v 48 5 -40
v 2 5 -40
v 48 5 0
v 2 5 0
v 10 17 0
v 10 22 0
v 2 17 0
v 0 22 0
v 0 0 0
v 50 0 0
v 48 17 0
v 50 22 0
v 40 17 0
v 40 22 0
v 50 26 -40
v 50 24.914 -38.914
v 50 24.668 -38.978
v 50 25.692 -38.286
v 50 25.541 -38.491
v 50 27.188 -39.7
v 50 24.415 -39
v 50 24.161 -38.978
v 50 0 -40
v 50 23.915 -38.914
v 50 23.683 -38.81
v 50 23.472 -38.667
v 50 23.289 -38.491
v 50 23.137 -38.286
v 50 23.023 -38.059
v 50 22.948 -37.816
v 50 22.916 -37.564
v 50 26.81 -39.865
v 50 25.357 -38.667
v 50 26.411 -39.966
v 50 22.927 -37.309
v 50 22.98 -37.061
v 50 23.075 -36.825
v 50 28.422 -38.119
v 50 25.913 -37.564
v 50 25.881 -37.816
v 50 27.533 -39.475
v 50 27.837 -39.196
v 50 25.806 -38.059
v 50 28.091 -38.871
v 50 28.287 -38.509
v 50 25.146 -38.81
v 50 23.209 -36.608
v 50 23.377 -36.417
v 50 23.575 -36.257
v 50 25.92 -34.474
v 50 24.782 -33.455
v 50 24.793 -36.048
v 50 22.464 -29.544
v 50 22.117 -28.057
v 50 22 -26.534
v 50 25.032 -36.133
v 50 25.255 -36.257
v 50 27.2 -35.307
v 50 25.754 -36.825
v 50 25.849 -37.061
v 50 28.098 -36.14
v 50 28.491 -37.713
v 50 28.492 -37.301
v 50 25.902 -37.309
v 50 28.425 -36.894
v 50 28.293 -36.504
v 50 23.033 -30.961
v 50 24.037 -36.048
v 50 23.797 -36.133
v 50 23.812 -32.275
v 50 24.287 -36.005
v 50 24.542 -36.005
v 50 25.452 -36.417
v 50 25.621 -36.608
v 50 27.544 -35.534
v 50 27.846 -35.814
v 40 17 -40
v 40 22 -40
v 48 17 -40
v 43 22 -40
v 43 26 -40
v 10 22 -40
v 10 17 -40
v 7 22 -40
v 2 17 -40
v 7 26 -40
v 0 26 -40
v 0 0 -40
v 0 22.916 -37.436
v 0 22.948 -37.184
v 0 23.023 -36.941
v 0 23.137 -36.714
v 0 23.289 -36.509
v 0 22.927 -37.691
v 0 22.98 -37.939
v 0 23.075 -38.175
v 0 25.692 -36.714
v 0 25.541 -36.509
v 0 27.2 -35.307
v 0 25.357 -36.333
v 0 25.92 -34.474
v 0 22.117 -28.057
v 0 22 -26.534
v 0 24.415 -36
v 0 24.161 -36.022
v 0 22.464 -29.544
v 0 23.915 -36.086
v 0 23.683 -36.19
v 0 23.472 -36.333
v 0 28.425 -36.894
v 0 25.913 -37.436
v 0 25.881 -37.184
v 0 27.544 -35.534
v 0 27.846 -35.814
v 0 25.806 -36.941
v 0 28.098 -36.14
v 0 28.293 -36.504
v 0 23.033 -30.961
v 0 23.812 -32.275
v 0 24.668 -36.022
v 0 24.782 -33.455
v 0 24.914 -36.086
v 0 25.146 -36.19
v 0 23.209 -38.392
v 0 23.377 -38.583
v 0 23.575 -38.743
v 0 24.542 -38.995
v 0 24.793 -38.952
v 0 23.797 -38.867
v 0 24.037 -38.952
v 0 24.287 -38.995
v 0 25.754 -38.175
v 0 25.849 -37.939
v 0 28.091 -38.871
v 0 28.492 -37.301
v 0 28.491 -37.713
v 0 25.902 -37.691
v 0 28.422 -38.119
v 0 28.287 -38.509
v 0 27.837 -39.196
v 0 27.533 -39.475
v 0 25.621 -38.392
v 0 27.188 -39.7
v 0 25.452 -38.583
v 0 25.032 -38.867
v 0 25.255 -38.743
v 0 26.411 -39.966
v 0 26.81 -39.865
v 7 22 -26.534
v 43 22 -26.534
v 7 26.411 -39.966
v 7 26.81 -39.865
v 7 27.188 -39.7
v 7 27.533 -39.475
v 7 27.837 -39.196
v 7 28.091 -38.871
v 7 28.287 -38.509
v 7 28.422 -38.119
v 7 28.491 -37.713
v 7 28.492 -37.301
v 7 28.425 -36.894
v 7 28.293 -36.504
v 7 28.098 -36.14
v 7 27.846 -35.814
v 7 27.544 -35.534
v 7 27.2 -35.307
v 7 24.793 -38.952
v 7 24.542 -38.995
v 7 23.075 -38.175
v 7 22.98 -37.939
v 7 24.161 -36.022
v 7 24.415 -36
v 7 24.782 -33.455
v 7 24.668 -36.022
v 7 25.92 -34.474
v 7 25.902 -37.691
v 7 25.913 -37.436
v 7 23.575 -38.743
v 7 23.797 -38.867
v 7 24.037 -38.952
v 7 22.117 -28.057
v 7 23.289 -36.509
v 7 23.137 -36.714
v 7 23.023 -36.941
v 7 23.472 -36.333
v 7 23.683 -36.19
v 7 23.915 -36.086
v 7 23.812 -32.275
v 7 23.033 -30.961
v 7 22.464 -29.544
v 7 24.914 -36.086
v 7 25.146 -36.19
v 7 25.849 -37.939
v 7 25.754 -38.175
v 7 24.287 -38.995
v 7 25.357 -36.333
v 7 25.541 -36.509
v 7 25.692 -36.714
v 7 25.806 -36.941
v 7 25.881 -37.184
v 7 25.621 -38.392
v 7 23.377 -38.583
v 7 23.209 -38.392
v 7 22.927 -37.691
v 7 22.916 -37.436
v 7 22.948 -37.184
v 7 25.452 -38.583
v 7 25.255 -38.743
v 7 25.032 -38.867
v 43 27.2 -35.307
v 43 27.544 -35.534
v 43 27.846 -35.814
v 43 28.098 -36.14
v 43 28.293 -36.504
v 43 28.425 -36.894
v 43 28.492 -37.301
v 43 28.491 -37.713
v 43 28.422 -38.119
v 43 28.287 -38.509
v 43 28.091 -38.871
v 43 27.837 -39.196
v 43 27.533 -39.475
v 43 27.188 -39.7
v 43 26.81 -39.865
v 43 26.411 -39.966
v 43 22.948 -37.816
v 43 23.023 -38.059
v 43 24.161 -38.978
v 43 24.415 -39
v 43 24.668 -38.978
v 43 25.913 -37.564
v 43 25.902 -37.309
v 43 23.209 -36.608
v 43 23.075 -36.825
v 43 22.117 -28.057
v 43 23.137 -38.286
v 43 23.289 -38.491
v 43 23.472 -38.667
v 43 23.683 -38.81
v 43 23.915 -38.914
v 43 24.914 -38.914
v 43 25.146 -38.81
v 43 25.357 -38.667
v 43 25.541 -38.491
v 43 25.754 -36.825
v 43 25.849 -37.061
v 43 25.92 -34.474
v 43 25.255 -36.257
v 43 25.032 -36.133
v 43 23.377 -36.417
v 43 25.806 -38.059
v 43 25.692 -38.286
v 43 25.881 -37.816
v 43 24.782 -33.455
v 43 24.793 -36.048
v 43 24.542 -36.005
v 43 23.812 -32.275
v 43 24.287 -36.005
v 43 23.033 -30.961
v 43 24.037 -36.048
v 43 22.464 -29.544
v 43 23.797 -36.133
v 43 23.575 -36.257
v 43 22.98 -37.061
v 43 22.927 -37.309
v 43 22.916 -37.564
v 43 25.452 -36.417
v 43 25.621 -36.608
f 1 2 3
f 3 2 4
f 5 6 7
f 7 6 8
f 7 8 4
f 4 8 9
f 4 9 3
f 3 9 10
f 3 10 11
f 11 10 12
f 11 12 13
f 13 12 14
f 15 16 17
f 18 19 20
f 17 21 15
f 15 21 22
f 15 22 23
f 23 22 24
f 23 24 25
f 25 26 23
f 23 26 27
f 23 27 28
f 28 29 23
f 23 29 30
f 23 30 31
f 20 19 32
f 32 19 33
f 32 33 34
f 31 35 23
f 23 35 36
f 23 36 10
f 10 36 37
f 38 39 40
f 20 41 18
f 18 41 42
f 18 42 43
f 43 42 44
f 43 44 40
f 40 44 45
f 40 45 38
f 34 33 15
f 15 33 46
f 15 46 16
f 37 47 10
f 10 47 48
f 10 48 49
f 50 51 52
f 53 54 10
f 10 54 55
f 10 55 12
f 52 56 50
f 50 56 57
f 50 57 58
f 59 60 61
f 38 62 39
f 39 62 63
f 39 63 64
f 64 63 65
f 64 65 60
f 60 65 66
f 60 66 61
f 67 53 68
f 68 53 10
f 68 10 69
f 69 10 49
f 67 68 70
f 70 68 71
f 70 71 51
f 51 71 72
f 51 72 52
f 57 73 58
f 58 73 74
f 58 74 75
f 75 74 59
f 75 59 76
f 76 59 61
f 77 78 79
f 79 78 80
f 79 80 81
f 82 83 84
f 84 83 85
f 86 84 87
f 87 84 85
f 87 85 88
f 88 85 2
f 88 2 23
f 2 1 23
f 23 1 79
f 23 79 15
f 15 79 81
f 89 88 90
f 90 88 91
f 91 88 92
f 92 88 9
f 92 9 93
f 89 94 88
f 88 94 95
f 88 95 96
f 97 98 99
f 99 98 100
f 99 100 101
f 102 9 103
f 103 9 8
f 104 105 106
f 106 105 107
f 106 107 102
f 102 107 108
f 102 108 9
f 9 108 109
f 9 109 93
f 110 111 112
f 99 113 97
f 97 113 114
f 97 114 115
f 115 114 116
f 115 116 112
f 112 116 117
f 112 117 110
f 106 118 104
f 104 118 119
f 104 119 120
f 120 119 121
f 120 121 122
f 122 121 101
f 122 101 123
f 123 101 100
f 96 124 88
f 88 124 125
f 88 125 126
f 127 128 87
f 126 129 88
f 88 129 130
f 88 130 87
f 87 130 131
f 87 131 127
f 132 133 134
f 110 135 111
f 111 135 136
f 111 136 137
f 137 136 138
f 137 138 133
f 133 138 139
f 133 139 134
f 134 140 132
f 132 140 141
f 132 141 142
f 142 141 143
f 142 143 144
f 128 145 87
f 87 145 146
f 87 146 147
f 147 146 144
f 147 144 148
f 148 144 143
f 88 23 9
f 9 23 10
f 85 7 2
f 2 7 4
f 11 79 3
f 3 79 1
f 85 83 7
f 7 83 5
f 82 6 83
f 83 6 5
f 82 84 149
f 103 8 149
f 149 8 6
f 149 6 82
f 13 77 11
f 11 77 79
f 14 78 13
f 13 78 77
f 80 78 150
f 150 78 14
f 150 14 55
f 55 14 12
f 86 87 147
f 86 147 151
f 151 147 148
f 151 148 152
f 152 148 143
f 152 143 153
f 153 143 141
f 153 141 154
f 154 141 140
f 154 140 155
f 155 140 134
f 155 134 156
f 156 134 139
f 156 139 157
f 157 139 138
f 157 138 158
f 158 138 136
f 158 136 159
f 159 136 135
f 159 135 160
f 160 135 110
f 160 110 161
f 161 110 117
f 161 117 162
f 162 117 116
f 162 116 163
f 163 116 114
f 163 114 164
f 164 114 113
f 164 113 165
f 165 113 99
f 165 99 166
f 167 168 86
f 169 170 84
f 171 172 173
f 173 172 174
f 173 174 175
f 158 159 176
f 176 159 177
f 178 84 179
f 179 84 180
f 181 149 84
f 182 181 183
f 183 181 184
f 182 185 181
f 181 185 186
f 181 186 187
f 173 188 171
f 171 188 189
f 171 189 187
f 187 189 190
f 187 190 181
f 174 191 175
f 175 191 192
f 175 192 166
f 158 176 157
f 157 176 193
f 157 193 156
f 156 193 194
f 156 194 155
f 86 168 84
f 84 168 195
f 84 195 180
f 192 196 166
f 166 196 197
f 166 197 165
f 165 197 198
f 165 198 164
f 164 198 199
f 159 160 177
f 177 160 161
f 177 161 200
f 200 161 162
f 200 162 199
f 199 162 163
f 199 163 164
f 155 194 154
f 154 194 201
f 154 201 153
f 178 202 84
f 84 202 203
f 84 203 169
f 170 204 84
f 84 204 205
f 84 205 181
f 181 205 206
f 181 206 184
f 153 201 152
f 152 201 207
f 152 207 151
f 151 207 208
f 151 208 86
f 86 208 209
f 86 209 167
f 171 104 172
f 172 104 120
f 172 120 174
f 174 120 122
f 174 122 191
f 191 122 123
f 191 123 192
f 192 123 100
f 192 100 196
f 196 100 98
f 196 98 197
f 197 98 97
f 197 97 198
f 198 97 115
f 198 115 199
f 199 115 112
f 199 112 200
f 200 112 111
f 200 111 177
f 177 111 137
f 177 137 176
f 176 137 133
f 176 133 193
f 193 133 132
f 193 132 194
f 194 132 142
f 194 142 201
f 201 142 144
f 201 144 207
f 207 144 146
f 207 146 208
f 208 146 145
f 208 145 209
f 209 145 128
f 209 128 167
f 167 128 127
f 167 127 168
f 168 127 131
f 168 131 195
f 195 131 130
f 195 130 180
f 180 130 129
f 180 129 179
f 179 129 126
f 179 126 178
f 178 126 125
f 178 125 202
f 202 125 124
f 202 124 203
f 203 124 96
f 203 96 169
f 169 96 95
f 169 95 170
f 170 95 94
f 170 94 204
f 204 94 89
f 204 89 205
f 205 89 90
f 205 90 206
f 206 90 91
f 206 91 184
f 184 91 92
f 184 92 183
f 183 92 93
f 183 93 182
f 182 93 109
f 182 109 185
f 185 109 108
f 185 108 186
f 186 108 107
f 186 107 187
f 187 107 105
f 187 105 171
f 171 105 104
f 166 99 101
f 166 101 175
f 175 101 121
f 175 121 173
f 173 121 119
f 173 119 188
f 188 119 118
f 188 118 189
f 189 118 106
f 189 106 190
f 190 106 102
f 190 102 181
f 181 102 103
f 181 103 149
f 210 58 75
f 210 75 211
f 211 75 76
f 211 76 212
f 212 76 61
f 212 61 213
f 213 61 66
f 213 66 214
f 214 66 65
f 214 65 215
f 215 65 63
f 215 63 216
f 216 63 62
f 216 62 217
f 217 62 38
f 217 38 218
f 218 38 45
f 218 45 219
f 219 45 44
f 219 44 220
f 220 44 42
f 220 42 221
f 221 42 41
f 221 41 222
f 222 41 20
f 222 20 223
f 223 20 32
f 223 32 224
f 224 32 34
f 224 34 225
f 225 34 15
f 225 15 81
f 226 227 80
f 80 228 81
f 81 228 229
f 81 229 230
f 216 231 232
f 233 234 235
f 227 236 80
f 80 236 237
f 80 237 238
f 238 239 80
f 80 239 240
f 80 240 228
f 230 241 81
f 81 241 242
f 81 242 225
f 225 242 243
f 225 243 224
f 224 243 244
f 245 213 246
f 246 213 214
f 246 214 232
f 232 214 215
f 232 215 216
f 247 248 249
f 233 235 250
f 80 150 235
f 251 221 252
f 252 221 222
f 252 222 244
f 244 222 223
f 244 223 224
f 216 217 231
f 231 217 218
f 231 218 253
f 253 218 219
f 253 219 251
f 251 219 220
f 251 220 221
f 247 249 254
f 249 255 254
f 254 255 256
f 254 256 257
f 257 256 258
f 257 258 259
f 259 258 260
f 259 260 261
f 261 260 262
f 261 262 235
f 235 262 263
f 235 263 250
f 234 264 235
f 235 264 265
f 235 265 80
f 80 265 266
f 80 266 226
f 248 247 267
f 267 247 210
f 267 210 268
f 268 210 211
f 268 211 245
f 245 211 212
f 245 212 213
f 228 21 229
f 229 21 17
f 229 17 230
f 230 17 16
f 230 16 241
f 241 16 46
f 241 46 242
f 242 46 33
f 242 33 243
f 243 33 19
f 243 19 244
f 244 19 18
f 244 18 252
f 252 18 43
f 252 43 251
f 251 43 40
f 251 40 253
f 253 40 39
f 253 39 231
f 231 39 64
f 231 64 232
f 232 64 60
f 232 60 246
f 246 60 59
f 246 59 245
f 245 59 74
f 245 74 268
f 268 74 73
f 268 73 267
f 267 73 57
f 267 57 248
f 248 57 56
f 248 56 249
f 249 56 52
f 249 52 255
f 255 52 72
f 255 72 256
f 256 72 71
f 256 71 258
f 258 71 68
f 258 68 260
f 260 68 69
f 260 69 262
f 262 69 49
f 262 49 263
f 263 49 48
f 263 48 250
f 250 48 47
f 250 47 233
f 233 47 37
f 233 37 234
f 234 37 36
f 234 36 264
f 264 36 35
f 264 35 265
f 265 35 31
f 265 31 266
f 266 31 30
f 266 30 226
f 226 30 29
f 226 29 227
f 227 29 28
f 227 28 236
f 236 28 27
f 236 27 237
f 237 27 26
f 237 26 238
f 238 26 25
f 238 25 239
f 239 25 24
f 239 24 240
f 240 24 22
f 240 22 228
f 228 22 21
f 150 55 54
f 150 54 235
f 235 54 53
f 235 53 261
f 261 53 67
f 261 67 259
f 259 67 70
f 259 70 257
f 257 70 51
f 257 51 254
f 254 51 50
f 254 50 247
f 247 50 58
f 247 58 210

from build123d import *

# Parameters (mm, degrees)
SKETCH1_W           = 50
SKETCH1_H           = 40
BOSS_EXTRUDE2_DEPTH = 5
SKETCH2_W           = 2
SKETCH2_H           = 40
BOSS_EXTRUDE4_DEPTH = 12
SKETCH3_W           = 10
SKETCH3_H           = 40
BOSS_EXTRUDE5_DEPTH = 5
SKETCH5_R           = 1.5
BOSS_EXTRUDE6_DEPTH = 7
FILLET1_R           = 10
BOSS_EXTRUDE7_START = -7
SKETCH6_R           = 1.5
BOSS_EXTRUDE7_DEPTH = 7
FILLET2_R           = 10


with BuildPart() as part:
    # Sketch1 → Boss-Extrude2 (new body)
    with BuildSketch(Plane(origin=(0, 0, 0), x_dir=(1, 0, 0), z_dir=(0, 1, 0))):
        with Locations((25, 20)):
            Rectangle(SKETCH1_W, SKETCH1_H)
    extrude(amount=BOSS_EXTRUDE2_DEPTH)

    # Sketch2 → Boss-Extrude4 (add)
    with BuildSketch(Plane(origin=(0, 5, 0), x_dir=(1, 0, 0), z_dir=(0, 1, 0))):
        with Locations((1, 20)):
            Rectangle(SKETCH2_W, SKETCH2_H)
        with Locations((49, 20)):
            Rectangle(SKETCH2_W, SKETCH2_H)
    extrude(amount=BOSS_EXTRUDE4_DEPTH)

    # Sketch3 → Boss-Extrude5 (add)
    with BuildSketch(Plane(origin=(0, 17, 0), x_dir=(1, 0, 0), z_dir=(0, 1, 0))):
        with Locations((5, 20)):
            Rectangle(SKETCH3_W, SKETCH3_H)
        with Locations((45, 20)):
            Rectangle(SKETCH3_W, SKETCH3_H)
    extrude(amount=BOSS_EXTRUDE5_DEPTH)

    # Sketch5 → Boss-Extrude6 (add)
    with BuildSketch(Plane.ZY):
        with BuildLine():
            Line((-40, 22), (-35, 22))
            Line((-35, 22), (-35, 26))
            ThreePointArc((-35, 26), (-37.5, 28.5), (-40, 26))
            Line((-40, 26), (-40, 22))
        make_face()
        with Locations((-37.5, 24.41459259)):
            Circle(SKETCH5_R, mode=Mode.SUBTRACT)
    extrude(amount=-BOSS_EXTRUDE6_DEPTH)

    # Fillet1
    # the kernel refuses this fillet: 10 mm, written as the material it adds along each edge
    with BuildSketch(Plane(origin=(0, 22, -35), x_dir=(0, 0.99826370600864, -0.058903083670516616), z_dir=(1, 0, 0))) as fillet1_piece_1:
        with BuildLine():
            CenterArc((9.48397203, 9.040187721), FILLET1_R, 183.376852724, 61.314597986)
            Line((-0.49866503, 8.451156885), (-1.496928736, 8.392253801))
            Line((-1.496928736, 8.392253801), (-0.998263706, -0.058903084))
            Line((-0.998263706, -0.058903084), (0.058903084, -0.998263706))
            ThreePointArc((0.058903084, -0.998263706), (4.051957908, -0.762651371), (4.781551673, -0.904018772))
            Line((4.781551673, -0.904018772), (5.209044433, 0))
        make_face()
    extrude(amount=7)

    # Sketch6 → Boss-Extrude7 (add)
    with BuildSketch(Plane(origin=(50, 0, 0), x_dir=(0, 0, -1), z_dir=(1, 0, 0)).offset(BOSS_EXTRUDE7_START)):
        with BuildLine():
            Line((35, 22), (40, 22))
            Line((40, 22), (40, 26))
            ThreePointArc((40, 26), (37.5, 28.5), (35, 26))
            Line((35, 26), (35, 22))
        make_face()
        with Locations(Location((37.5, 24.41459259, 0), (0, 0, 180))):
            Circle(SKETCH6_R, mode=Mode.SUBTRACT)
    extrude(amount=BOSS_EXTRUDE7_DEPTH)

    # Fillet2
    # the kernel refuses this fillet: 10 mm, written as the material it adds along each edge
    with BuildSketch(Plane(origin=(43, 22, -35), x_dir=(0, 0, 1), z_dir=(1, 0, 0))) as fillet2_piece_1:
        with BuildLine():
            CenterArc((8.4658561, -10), FILLET2_R, 90, 61.314597986)
            Line((-0.30682878, -5.2), (-1.184097268, -4.72))
            ThreePointArc((-1.184097268, -4.72), (-1, -4), (-1, 0))
            Line((-1, 0), (0, 1))
            Line((0, 1), (8.4658561, 1))
            Line((8.4658561, 1), (8.4658561, 0))
        make_face()
    extrude(amount=7)


solid = part.part
